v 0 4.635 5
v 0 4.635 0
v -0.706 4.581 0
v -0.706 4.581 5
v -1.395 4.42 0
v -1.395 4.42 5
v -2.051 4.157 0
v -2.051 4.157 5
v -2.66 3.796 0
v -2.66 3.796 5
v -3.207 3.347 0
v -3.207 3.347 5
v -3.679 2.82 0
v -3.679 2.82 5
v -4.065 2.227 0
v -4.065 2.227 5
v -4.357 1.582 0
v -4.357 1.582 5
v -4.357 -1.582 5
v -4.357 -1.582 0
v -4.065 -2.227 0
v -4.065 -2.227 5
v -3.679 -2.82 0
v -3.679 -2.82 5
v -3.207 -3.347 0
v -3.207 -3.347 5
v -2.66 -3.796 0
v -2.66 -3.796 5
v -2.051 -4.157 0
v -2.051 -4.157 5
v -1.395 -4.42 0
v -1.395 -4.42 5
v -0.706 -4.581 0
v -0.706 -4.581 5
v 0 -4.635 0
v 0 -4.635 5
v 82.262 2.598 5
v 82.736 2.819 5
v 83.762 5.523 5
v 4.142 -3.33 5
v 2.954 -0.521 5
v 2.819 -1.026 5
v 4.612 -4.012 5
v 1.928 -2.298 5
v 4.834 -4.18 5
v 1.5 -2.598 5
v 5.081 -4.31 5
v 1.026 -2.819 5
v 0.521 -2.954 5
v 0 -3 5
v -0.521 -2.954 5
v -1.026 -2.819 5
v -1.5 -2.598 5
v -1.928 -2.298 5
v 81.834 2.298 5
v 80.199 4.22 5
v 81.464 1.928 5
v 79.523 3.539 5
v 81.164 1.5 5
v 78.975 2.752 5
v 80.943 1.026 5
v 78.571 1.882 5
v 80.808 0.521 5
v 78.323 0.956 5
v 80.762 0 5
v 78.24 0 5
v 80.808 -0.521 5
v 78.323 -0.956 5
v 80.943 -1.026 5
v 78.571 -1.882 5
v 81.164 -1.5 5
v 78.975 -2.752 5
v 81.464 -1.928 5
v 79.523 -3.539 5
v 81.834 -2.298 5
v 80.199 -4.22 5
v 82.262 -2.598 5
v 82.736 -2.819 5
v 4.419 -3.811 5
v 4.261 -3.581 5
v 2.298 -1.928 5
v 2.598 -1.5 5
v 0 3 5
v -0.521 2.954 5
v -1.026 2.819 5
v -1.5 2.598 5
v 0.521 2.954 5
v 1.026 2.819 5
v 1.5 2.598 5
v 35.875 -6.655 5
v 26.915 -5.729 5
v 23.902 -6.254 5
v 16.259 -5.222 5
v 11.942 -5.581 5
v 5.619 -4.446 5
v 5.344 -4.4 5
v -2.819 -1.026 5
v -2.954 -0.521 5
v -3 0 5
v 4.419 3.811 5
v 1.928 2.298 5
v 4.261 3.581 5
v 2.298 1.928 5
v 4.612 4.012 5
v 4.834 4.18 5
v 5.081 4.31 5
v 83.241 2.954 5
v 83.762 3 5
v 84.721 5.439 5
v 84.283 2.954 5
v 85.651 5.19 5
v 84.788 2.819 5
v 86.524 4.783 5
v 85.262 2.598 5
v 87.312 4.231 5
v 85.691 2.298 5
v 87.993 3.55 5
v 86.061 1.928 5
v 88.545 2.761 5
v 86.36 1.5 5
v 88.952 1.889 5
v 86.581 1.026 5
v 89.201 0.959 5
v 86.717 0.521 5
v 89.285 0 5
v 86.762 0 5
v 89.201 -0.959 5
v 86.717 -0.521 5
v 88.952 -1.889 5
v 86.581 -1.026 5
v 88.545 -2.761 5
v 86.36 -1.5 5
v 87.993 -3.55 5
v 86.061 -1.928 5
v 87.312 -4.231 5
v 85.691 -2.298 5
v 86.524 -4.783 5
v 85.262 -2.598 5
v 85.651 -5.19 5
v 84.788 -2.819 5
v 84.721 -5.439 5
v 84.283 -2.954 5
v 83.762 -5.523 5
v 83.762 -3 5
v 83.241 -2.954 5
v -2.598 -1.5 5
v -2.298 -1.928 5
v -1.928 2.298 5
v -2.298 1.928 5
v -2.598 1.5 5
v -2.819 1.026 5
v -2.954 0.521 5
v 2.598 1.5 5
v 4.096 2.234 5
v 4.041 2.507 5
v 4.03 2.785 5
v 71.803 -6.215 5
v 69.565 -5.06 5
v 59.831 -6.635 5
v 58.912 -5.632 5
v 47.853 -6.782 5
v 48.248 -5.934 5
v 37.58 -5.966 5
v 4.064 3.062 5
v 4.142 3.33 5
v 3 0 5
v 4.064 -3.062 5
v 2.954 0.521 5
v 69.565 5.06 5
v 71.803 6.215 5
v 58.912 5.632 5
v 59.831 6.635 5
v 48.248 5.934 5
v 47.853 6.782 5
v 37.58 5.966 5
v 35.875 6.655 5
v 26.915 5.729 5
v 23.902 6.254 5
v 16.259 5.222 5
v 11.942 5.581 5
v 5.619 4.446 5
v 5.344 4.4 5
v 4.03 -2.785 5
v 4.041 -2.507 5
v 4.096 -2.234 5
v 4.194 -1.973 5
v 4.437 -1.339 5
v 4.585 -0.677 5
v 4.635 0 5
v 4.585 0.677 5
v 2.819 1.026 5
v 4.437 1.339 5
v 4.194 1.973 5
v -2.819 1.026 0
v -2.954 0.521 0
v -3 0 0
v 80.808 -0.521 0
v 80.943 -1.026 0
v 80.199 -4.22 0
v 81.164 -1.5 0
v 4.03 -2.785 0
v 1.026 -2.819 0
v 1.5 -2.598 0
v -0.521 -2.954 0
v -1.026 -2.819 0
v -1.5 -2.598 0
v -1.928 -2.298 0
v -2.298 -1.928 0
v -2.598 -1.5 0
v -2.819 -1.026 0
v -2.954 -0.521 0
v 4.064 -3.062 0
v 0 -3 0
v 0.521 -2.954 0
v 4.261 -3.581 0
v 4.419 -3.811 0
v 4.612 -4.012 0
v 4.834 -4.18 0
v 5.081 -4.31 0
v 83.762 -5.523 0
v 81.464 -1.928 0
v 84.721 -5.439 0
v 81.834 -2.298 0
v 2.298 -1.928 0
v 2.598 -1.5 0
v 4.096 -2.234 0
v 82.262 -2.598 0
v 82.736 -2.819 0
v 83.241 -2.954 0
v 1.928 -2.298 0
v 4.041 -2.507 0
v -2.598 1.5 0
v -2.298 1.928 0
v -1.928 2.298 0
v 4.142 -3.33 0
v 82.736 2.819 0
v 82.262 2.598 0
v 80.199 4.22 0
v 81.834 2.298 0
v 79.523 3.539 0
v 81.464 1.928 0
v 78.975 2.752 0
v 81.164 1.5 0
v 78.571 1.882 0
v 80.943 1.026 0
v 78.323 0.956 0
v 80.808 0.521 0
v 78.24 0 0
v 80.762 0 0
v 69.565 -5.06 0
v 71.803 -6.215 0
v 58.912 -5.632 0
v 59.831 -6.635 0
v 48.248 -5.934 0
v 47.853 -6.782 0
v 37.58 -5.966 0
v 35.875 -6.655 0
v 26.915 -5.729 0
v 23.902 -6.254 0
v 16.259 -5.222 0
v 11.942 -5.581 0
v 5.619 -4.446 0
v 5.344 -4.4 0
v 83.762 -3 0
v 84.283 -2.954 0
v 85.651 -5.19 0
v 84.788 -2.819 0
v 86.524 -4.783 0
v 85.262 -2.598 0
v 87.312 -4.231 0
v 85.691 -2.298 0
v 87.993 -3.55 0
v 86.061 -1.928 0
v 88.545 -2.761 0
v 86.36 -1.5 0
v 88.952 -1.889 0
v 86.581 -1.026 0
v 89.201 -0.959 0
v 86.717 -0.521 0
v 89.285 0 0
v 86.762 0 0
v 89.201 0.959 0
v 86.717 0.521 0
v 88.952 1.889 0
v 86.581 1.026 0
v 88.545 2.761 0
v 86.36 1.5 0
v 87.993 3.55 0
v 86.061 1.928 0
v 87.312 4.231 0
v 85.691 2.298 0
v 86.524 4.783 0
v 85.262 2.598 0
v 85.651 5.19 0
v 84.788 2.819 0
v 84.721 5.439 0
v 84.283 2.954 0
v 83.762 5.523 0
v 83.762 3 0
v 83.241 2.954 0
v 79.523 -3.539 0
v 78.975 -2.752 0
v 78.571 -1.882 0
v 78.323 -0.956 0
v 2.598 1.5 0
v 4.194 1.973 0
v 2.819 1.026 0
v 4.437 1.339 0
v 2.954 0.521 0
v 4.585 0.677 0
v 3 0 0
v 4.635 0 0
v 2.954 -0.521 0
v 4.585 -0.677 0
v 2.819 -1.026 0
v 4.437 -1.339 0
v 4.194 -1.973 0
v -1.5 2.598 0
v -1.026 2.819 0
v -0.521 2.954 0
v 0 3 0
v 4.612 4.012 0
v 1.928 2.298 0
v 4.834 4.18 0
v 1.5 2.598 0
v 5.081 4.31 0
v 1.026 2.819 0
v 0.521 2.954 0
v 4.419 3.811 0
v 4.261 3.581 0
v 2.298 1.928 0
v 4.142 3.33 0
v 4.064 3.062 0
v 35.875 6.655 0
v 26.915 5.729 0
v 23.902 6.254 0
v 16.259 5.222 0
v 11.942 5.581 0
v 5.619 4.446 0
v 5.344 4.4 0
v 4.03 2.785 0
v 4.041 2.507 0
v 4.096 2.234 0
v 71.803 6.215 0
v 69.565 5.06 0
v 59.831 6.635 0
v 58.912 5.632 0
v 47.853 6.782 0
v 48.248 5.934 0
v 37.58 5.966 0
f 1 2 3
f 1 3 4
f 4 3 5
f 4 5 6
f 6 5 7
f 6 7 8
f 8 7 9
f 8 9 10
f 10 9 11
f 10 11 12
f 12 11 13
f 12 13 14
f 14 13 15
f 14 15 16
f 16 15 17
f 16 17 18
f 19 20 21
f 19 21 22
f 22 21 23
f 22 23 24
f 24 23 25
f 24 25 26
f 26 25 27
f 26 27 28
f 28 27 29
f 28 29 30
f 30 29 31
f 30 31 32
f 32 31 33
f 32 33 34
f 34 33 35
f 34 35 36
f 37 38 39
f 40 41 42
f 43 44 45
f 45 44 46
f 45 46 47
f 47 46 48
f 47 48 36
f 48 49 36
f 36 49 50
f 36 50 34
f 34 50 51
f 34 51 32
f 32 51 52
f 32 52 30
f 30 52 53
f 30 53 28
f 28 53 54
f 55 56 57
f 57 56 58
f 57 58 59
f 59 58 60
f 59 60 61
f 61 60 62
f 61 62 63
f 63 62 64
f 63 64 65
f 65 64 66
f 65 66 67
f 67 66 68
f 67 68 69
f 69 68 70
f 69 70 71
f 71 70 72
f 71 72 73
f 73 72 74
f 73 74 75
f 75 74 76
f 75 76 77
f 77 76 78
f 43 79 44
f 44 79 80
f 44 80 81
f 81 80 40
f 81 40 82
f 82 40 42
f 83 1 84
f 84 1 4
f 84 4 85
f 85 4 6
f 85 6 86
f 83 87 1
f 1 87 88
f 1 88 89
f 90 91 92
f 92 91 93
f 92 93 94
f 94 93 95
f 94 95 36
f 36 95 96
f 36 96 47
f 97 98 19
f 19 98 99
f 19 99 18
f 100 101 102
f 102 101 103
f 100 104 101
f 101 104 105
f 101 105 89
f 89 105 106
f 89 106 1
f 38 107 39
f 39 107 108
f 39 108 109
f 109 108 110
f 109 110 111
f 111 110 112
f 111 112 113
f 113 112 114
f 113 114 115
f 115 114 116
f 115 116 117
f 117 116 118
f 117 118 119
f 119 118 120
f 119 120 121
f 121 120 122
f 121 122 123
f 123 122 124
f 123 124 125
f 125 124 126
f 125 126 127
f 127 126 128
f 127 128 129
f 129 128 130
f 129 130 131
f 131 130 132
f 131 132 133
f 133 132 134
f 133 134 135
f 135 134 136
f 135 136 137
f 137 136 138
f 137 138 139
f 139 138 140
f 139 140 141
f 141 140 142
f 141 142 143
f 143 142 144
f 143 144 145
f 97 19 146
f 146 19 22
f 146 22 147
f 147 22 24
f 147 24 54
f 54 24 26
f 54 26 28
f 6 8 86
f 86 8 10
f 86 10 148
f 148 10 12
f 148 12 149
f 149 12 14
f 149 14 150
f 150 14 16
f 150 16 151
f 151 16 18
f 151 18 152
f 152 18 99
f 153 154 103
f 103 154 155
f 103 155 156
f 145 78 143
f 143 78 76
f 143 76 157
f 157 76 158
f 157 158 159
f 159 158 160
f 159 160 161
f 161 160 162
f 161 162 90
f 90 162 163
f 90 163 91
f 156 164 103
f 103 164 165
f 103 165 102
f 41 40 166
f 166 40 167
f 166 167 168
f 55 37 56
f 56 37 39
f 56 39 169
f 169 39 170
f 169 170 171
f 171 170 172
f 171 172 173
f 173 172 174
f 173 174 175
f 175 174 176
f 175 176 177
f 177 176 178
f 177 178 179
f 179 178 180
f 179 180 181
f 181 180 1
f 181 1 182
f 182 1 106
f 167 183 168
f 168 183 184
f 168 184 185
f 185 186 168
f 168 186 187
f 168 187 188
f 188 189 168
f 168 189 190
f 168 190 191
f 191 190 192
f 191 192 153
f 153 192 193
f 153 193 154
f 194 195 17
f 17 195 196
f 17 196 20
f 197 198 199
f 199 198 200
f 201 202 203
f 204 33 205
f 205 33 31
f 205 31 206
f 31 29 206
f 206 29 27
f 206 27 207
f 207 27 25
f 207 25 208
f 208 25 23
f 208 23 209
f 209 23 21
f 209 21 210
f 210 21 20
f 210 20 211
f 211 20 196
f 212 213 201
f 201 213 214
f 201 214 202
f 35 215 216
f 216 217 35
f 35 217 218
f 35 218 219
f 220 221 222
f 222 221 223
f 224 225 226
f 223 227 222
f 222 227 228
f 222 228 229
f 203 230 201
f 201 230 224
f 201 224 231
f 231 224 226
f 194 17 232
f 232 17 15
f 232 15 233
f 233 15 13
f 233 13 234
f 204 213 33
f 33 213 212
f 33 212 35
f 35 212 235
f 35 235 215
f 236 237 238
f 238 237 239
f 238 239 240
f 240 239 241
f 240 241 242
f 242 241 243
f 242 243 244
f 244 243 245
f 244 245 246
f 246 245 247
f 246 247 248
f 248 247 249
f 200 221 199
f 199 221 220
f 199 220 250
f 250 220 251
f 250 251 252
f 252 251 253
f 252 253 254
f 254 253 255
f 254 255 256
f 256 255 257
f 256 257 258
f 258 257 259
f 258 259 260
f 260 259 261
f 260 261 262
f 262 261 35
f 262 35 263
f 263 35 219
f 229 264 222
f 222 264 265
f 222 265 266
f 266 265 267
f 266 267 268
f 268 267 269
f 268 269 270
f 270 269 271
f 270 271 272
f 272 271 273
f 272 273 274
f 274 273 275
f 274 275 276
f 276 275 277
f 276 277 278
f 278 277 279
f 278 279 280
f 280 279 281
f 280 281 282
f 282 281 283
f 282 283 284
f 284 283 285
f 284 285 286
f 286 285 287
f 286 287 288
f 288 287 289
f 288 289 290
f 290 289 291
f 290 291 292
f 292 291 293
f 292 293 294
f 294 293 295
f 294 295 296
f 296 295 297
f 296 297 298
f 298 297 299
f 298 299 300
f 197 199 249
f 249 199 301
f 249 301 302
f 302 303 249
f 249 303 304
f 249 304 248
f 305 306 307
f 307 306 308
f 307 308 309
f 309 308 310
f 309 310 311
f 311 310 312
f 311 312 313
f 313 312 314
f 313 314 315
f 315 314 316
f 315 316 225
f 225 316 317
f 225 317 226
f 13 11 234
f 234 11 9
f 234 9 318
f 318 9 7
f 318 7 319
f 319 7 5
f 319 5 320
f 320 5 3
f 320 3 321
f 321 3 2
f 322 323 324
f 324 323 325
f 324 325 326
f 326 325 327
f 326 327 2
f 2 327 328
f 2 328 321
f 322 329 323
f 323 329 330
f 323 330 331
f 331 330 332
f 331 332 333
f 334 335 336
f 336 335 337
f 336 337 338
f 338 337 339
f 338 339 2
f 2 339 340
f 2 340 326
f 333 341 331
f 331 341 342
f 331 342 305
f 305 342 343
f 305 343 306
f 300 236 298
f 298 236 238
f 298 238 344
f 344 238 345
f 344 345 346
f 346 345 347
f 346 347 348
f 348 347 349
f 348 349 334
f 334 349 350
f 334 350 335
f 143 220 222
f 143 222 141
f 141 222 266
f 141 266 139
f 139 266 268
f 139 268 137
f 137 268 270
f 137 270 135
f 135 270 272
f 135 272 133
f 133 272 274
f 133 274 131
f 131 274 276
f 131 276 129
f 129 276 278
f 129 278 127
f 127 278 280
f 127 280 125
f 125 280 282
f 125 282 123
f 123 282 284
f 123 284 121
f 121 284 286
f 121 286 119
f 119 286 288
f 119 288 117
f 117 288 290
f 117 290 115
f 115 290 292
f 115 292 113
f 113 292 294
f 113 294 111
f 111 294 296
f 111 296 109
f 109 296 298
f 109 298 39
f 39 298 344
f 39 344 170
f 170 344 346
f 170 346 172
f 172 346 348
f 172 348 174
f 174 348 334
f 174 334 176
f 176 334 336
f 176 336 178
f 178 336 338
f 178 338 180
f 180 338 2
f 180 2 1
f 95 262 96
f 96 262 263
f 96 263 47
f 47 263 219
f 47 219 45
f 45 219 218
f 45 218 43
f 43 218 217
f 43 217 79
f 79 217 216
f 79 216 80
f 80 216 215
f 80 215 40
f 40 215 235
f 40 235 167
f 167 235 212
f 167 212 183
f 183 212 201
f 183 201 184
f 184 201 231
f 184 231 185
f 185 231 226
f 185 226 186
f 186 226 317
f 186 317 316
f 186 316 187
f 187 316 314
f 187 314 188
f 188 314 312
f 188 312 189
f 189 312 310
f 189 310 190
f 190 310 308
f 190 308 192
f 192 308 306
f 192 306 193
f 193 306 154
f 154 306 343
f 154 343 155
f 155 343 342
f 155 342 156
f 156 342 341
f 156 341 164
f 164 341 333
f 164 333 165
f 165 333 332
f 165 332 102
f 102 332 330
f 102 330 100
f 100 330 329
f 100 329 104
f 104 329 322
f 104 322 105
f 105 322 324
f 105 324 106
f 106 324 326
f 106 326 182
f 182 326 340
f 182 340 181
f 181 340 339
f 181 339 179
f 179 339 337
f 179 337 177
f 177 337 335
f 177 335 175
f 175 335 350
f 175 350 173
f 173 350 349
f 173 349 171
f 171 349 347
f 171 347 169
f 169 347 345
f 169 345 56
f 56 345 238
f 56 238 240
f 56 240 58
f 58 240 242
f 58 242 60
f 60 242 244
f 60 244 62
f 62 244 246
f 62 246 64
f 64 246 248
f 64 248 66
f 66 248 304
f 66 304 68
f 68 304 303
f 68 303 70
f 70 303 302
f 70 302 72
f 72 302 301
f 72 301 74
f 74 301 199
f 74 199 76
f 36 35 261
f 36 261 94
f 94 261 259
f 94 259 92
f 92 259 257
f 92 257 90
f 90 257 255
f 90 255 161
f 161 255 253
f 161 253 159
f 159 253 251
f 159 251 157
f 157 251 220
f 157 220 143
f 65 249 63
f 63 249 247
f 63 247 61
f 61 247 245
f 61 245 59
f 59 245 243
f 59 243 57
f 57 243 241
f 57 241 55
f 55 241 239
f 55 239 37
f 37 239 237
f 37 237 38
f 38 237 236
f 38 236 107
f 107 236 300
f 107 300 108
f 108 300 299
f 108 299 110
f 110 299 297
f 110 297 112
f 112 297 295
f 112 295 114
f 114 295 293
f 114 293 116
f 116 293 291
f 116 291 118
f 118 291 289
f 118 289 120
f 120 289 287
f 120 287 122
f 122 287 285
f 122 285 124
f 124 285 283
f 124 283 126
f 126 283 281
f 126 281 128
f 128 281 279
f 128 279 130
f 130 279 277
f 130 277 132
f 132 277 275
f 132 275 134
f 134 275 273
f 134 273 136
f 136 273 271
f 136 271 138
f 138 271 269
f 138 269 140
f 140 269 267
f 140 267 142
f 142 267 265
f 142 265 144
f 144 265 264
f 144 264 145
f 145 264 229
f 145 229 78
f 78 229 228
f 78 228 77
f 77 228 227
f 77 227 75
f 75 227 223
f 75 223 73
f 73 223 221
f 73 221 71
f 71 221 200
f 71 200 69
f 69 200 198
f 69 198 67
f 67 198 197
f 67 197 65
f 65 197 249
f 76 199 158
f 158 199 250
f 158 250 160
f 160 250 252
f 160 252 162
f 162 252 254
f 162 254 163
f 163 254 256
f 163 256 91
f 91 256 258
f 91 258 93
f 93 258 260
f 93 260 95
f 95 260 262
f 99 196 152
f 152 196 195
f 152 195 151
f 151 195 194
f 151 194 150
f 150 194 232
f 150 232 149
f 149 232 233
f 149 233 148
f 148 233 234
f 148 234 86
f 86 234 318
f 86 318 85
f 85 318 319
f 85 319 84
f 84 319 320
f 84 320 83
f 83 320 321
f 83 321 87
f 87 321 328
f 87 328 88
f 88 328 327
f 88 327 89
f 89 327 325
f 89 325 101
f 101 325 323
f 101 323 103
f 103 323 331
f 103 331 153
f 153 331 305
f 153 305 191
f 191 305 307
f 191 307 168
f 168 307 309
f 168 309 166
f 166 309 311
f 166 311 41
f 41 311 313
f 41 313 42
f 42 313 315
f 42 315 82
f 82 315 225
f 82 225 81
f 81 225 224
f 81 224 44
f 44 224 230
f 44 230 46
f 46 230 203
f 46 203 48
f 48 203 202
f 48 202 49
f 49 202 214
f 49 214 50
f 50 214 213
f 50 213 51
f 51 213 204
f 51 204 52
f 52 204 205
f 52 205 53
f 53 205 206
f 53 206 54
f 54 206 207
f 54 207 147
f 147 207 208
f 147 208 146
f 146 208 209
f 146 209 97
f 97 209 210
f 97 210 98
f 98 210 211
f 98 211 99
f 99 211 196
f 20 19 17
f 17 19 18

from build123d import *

# Parameters (mm, degrees)
SZKIC1_R                    = 3.000000079
DODANIE_WYCI_GNI_CIE1_DEPTH = 5
SZKIC2_W                    = 1.618528634
SZKIC2_H                    = 7.505645785
SZKIC2_W_2                  = 0.651830256
SZKIC2_H_2                  = 5.051684483
WYTNIJ_WYCI_GNI_CIE3_DEPTH  = 6


with BuildPart() as part:
    # Szkic1 → Dodanie-wyciągnięcie1 (new body)
    with BuildSketch(Plane.XY):
        with BuildLine():
            ThreePointArc((83.76241555, 5.522620658), (41.86347888, 6.752288216), (0, 4.635188213))
            ThreePointArc((0, 4.635188213), (-4.635188213, 0), (0, -4.635188213))
            ThreePointArc((0, -4.635188213), (41.86347888, -6.752288216), (83.76241555, -5.522620658))
            ThreePointArc((83.76241555, -5.522620658), (89.285036208, 0), (83.76241555, 5.522620658))
        make_face()
        with BuildLine():
            ThreePointArc((5.619311809, 4.445631254), (42.914384434, 5.983761034), (80.199446312, 4.219548453))
            ThreePointArc((80.199446312, 4.219548453), (78.239794892, 0), (80.199446312, -4.219548453))
            ThreePointArc((80.199446312, -4.219548453), (42.914384434, -5.983761034), (5.619311809, -4.445631254))
            ThreePointArc((5.619311809, -4.445631254), (4.261200111, -3.581390157), (4.194308577, -1.973004139))
            ThreePointArc((4.194308577, -1.973004139), (4.635188213, 0), (4.194308577, 1.973004139))
            ThreePointArc((4.194308577, 1.973004139), (4.261200111, 3.581390157), (5.619311809, 4.445631254))
        make_face(mode=Mode.SUBTRACT)
        with Locations((83.76241555, 0)):
            Circle(SZKIC1_R, mode=Mode.SUBTRACT)
        Circle(SZKIC1_R, mode=Mode.SUBTRACT)
    extrude(amount=DODANIE_WYCI_GNI_CIE1_DEPTH)

    # Szkic2 → Wytnij-wyciągnięcie3 (cut, through all)
    with BuildSketch(Plane.XY):
        with Locations((193.638606269, 0.381285041)):
            Rectangle(SZKIC2_W, SZKIC2_H)
        with Locations((-4.682734605, -0.038745932)):
            Rectangle(SZKIC2_W_2, SZKIC2_H_2)
    extrude(amount=WYTNIJ_WYCI_GNI_CIE3_DEPTH, mode=Mode.SUBTRACT)


solid = part.part
